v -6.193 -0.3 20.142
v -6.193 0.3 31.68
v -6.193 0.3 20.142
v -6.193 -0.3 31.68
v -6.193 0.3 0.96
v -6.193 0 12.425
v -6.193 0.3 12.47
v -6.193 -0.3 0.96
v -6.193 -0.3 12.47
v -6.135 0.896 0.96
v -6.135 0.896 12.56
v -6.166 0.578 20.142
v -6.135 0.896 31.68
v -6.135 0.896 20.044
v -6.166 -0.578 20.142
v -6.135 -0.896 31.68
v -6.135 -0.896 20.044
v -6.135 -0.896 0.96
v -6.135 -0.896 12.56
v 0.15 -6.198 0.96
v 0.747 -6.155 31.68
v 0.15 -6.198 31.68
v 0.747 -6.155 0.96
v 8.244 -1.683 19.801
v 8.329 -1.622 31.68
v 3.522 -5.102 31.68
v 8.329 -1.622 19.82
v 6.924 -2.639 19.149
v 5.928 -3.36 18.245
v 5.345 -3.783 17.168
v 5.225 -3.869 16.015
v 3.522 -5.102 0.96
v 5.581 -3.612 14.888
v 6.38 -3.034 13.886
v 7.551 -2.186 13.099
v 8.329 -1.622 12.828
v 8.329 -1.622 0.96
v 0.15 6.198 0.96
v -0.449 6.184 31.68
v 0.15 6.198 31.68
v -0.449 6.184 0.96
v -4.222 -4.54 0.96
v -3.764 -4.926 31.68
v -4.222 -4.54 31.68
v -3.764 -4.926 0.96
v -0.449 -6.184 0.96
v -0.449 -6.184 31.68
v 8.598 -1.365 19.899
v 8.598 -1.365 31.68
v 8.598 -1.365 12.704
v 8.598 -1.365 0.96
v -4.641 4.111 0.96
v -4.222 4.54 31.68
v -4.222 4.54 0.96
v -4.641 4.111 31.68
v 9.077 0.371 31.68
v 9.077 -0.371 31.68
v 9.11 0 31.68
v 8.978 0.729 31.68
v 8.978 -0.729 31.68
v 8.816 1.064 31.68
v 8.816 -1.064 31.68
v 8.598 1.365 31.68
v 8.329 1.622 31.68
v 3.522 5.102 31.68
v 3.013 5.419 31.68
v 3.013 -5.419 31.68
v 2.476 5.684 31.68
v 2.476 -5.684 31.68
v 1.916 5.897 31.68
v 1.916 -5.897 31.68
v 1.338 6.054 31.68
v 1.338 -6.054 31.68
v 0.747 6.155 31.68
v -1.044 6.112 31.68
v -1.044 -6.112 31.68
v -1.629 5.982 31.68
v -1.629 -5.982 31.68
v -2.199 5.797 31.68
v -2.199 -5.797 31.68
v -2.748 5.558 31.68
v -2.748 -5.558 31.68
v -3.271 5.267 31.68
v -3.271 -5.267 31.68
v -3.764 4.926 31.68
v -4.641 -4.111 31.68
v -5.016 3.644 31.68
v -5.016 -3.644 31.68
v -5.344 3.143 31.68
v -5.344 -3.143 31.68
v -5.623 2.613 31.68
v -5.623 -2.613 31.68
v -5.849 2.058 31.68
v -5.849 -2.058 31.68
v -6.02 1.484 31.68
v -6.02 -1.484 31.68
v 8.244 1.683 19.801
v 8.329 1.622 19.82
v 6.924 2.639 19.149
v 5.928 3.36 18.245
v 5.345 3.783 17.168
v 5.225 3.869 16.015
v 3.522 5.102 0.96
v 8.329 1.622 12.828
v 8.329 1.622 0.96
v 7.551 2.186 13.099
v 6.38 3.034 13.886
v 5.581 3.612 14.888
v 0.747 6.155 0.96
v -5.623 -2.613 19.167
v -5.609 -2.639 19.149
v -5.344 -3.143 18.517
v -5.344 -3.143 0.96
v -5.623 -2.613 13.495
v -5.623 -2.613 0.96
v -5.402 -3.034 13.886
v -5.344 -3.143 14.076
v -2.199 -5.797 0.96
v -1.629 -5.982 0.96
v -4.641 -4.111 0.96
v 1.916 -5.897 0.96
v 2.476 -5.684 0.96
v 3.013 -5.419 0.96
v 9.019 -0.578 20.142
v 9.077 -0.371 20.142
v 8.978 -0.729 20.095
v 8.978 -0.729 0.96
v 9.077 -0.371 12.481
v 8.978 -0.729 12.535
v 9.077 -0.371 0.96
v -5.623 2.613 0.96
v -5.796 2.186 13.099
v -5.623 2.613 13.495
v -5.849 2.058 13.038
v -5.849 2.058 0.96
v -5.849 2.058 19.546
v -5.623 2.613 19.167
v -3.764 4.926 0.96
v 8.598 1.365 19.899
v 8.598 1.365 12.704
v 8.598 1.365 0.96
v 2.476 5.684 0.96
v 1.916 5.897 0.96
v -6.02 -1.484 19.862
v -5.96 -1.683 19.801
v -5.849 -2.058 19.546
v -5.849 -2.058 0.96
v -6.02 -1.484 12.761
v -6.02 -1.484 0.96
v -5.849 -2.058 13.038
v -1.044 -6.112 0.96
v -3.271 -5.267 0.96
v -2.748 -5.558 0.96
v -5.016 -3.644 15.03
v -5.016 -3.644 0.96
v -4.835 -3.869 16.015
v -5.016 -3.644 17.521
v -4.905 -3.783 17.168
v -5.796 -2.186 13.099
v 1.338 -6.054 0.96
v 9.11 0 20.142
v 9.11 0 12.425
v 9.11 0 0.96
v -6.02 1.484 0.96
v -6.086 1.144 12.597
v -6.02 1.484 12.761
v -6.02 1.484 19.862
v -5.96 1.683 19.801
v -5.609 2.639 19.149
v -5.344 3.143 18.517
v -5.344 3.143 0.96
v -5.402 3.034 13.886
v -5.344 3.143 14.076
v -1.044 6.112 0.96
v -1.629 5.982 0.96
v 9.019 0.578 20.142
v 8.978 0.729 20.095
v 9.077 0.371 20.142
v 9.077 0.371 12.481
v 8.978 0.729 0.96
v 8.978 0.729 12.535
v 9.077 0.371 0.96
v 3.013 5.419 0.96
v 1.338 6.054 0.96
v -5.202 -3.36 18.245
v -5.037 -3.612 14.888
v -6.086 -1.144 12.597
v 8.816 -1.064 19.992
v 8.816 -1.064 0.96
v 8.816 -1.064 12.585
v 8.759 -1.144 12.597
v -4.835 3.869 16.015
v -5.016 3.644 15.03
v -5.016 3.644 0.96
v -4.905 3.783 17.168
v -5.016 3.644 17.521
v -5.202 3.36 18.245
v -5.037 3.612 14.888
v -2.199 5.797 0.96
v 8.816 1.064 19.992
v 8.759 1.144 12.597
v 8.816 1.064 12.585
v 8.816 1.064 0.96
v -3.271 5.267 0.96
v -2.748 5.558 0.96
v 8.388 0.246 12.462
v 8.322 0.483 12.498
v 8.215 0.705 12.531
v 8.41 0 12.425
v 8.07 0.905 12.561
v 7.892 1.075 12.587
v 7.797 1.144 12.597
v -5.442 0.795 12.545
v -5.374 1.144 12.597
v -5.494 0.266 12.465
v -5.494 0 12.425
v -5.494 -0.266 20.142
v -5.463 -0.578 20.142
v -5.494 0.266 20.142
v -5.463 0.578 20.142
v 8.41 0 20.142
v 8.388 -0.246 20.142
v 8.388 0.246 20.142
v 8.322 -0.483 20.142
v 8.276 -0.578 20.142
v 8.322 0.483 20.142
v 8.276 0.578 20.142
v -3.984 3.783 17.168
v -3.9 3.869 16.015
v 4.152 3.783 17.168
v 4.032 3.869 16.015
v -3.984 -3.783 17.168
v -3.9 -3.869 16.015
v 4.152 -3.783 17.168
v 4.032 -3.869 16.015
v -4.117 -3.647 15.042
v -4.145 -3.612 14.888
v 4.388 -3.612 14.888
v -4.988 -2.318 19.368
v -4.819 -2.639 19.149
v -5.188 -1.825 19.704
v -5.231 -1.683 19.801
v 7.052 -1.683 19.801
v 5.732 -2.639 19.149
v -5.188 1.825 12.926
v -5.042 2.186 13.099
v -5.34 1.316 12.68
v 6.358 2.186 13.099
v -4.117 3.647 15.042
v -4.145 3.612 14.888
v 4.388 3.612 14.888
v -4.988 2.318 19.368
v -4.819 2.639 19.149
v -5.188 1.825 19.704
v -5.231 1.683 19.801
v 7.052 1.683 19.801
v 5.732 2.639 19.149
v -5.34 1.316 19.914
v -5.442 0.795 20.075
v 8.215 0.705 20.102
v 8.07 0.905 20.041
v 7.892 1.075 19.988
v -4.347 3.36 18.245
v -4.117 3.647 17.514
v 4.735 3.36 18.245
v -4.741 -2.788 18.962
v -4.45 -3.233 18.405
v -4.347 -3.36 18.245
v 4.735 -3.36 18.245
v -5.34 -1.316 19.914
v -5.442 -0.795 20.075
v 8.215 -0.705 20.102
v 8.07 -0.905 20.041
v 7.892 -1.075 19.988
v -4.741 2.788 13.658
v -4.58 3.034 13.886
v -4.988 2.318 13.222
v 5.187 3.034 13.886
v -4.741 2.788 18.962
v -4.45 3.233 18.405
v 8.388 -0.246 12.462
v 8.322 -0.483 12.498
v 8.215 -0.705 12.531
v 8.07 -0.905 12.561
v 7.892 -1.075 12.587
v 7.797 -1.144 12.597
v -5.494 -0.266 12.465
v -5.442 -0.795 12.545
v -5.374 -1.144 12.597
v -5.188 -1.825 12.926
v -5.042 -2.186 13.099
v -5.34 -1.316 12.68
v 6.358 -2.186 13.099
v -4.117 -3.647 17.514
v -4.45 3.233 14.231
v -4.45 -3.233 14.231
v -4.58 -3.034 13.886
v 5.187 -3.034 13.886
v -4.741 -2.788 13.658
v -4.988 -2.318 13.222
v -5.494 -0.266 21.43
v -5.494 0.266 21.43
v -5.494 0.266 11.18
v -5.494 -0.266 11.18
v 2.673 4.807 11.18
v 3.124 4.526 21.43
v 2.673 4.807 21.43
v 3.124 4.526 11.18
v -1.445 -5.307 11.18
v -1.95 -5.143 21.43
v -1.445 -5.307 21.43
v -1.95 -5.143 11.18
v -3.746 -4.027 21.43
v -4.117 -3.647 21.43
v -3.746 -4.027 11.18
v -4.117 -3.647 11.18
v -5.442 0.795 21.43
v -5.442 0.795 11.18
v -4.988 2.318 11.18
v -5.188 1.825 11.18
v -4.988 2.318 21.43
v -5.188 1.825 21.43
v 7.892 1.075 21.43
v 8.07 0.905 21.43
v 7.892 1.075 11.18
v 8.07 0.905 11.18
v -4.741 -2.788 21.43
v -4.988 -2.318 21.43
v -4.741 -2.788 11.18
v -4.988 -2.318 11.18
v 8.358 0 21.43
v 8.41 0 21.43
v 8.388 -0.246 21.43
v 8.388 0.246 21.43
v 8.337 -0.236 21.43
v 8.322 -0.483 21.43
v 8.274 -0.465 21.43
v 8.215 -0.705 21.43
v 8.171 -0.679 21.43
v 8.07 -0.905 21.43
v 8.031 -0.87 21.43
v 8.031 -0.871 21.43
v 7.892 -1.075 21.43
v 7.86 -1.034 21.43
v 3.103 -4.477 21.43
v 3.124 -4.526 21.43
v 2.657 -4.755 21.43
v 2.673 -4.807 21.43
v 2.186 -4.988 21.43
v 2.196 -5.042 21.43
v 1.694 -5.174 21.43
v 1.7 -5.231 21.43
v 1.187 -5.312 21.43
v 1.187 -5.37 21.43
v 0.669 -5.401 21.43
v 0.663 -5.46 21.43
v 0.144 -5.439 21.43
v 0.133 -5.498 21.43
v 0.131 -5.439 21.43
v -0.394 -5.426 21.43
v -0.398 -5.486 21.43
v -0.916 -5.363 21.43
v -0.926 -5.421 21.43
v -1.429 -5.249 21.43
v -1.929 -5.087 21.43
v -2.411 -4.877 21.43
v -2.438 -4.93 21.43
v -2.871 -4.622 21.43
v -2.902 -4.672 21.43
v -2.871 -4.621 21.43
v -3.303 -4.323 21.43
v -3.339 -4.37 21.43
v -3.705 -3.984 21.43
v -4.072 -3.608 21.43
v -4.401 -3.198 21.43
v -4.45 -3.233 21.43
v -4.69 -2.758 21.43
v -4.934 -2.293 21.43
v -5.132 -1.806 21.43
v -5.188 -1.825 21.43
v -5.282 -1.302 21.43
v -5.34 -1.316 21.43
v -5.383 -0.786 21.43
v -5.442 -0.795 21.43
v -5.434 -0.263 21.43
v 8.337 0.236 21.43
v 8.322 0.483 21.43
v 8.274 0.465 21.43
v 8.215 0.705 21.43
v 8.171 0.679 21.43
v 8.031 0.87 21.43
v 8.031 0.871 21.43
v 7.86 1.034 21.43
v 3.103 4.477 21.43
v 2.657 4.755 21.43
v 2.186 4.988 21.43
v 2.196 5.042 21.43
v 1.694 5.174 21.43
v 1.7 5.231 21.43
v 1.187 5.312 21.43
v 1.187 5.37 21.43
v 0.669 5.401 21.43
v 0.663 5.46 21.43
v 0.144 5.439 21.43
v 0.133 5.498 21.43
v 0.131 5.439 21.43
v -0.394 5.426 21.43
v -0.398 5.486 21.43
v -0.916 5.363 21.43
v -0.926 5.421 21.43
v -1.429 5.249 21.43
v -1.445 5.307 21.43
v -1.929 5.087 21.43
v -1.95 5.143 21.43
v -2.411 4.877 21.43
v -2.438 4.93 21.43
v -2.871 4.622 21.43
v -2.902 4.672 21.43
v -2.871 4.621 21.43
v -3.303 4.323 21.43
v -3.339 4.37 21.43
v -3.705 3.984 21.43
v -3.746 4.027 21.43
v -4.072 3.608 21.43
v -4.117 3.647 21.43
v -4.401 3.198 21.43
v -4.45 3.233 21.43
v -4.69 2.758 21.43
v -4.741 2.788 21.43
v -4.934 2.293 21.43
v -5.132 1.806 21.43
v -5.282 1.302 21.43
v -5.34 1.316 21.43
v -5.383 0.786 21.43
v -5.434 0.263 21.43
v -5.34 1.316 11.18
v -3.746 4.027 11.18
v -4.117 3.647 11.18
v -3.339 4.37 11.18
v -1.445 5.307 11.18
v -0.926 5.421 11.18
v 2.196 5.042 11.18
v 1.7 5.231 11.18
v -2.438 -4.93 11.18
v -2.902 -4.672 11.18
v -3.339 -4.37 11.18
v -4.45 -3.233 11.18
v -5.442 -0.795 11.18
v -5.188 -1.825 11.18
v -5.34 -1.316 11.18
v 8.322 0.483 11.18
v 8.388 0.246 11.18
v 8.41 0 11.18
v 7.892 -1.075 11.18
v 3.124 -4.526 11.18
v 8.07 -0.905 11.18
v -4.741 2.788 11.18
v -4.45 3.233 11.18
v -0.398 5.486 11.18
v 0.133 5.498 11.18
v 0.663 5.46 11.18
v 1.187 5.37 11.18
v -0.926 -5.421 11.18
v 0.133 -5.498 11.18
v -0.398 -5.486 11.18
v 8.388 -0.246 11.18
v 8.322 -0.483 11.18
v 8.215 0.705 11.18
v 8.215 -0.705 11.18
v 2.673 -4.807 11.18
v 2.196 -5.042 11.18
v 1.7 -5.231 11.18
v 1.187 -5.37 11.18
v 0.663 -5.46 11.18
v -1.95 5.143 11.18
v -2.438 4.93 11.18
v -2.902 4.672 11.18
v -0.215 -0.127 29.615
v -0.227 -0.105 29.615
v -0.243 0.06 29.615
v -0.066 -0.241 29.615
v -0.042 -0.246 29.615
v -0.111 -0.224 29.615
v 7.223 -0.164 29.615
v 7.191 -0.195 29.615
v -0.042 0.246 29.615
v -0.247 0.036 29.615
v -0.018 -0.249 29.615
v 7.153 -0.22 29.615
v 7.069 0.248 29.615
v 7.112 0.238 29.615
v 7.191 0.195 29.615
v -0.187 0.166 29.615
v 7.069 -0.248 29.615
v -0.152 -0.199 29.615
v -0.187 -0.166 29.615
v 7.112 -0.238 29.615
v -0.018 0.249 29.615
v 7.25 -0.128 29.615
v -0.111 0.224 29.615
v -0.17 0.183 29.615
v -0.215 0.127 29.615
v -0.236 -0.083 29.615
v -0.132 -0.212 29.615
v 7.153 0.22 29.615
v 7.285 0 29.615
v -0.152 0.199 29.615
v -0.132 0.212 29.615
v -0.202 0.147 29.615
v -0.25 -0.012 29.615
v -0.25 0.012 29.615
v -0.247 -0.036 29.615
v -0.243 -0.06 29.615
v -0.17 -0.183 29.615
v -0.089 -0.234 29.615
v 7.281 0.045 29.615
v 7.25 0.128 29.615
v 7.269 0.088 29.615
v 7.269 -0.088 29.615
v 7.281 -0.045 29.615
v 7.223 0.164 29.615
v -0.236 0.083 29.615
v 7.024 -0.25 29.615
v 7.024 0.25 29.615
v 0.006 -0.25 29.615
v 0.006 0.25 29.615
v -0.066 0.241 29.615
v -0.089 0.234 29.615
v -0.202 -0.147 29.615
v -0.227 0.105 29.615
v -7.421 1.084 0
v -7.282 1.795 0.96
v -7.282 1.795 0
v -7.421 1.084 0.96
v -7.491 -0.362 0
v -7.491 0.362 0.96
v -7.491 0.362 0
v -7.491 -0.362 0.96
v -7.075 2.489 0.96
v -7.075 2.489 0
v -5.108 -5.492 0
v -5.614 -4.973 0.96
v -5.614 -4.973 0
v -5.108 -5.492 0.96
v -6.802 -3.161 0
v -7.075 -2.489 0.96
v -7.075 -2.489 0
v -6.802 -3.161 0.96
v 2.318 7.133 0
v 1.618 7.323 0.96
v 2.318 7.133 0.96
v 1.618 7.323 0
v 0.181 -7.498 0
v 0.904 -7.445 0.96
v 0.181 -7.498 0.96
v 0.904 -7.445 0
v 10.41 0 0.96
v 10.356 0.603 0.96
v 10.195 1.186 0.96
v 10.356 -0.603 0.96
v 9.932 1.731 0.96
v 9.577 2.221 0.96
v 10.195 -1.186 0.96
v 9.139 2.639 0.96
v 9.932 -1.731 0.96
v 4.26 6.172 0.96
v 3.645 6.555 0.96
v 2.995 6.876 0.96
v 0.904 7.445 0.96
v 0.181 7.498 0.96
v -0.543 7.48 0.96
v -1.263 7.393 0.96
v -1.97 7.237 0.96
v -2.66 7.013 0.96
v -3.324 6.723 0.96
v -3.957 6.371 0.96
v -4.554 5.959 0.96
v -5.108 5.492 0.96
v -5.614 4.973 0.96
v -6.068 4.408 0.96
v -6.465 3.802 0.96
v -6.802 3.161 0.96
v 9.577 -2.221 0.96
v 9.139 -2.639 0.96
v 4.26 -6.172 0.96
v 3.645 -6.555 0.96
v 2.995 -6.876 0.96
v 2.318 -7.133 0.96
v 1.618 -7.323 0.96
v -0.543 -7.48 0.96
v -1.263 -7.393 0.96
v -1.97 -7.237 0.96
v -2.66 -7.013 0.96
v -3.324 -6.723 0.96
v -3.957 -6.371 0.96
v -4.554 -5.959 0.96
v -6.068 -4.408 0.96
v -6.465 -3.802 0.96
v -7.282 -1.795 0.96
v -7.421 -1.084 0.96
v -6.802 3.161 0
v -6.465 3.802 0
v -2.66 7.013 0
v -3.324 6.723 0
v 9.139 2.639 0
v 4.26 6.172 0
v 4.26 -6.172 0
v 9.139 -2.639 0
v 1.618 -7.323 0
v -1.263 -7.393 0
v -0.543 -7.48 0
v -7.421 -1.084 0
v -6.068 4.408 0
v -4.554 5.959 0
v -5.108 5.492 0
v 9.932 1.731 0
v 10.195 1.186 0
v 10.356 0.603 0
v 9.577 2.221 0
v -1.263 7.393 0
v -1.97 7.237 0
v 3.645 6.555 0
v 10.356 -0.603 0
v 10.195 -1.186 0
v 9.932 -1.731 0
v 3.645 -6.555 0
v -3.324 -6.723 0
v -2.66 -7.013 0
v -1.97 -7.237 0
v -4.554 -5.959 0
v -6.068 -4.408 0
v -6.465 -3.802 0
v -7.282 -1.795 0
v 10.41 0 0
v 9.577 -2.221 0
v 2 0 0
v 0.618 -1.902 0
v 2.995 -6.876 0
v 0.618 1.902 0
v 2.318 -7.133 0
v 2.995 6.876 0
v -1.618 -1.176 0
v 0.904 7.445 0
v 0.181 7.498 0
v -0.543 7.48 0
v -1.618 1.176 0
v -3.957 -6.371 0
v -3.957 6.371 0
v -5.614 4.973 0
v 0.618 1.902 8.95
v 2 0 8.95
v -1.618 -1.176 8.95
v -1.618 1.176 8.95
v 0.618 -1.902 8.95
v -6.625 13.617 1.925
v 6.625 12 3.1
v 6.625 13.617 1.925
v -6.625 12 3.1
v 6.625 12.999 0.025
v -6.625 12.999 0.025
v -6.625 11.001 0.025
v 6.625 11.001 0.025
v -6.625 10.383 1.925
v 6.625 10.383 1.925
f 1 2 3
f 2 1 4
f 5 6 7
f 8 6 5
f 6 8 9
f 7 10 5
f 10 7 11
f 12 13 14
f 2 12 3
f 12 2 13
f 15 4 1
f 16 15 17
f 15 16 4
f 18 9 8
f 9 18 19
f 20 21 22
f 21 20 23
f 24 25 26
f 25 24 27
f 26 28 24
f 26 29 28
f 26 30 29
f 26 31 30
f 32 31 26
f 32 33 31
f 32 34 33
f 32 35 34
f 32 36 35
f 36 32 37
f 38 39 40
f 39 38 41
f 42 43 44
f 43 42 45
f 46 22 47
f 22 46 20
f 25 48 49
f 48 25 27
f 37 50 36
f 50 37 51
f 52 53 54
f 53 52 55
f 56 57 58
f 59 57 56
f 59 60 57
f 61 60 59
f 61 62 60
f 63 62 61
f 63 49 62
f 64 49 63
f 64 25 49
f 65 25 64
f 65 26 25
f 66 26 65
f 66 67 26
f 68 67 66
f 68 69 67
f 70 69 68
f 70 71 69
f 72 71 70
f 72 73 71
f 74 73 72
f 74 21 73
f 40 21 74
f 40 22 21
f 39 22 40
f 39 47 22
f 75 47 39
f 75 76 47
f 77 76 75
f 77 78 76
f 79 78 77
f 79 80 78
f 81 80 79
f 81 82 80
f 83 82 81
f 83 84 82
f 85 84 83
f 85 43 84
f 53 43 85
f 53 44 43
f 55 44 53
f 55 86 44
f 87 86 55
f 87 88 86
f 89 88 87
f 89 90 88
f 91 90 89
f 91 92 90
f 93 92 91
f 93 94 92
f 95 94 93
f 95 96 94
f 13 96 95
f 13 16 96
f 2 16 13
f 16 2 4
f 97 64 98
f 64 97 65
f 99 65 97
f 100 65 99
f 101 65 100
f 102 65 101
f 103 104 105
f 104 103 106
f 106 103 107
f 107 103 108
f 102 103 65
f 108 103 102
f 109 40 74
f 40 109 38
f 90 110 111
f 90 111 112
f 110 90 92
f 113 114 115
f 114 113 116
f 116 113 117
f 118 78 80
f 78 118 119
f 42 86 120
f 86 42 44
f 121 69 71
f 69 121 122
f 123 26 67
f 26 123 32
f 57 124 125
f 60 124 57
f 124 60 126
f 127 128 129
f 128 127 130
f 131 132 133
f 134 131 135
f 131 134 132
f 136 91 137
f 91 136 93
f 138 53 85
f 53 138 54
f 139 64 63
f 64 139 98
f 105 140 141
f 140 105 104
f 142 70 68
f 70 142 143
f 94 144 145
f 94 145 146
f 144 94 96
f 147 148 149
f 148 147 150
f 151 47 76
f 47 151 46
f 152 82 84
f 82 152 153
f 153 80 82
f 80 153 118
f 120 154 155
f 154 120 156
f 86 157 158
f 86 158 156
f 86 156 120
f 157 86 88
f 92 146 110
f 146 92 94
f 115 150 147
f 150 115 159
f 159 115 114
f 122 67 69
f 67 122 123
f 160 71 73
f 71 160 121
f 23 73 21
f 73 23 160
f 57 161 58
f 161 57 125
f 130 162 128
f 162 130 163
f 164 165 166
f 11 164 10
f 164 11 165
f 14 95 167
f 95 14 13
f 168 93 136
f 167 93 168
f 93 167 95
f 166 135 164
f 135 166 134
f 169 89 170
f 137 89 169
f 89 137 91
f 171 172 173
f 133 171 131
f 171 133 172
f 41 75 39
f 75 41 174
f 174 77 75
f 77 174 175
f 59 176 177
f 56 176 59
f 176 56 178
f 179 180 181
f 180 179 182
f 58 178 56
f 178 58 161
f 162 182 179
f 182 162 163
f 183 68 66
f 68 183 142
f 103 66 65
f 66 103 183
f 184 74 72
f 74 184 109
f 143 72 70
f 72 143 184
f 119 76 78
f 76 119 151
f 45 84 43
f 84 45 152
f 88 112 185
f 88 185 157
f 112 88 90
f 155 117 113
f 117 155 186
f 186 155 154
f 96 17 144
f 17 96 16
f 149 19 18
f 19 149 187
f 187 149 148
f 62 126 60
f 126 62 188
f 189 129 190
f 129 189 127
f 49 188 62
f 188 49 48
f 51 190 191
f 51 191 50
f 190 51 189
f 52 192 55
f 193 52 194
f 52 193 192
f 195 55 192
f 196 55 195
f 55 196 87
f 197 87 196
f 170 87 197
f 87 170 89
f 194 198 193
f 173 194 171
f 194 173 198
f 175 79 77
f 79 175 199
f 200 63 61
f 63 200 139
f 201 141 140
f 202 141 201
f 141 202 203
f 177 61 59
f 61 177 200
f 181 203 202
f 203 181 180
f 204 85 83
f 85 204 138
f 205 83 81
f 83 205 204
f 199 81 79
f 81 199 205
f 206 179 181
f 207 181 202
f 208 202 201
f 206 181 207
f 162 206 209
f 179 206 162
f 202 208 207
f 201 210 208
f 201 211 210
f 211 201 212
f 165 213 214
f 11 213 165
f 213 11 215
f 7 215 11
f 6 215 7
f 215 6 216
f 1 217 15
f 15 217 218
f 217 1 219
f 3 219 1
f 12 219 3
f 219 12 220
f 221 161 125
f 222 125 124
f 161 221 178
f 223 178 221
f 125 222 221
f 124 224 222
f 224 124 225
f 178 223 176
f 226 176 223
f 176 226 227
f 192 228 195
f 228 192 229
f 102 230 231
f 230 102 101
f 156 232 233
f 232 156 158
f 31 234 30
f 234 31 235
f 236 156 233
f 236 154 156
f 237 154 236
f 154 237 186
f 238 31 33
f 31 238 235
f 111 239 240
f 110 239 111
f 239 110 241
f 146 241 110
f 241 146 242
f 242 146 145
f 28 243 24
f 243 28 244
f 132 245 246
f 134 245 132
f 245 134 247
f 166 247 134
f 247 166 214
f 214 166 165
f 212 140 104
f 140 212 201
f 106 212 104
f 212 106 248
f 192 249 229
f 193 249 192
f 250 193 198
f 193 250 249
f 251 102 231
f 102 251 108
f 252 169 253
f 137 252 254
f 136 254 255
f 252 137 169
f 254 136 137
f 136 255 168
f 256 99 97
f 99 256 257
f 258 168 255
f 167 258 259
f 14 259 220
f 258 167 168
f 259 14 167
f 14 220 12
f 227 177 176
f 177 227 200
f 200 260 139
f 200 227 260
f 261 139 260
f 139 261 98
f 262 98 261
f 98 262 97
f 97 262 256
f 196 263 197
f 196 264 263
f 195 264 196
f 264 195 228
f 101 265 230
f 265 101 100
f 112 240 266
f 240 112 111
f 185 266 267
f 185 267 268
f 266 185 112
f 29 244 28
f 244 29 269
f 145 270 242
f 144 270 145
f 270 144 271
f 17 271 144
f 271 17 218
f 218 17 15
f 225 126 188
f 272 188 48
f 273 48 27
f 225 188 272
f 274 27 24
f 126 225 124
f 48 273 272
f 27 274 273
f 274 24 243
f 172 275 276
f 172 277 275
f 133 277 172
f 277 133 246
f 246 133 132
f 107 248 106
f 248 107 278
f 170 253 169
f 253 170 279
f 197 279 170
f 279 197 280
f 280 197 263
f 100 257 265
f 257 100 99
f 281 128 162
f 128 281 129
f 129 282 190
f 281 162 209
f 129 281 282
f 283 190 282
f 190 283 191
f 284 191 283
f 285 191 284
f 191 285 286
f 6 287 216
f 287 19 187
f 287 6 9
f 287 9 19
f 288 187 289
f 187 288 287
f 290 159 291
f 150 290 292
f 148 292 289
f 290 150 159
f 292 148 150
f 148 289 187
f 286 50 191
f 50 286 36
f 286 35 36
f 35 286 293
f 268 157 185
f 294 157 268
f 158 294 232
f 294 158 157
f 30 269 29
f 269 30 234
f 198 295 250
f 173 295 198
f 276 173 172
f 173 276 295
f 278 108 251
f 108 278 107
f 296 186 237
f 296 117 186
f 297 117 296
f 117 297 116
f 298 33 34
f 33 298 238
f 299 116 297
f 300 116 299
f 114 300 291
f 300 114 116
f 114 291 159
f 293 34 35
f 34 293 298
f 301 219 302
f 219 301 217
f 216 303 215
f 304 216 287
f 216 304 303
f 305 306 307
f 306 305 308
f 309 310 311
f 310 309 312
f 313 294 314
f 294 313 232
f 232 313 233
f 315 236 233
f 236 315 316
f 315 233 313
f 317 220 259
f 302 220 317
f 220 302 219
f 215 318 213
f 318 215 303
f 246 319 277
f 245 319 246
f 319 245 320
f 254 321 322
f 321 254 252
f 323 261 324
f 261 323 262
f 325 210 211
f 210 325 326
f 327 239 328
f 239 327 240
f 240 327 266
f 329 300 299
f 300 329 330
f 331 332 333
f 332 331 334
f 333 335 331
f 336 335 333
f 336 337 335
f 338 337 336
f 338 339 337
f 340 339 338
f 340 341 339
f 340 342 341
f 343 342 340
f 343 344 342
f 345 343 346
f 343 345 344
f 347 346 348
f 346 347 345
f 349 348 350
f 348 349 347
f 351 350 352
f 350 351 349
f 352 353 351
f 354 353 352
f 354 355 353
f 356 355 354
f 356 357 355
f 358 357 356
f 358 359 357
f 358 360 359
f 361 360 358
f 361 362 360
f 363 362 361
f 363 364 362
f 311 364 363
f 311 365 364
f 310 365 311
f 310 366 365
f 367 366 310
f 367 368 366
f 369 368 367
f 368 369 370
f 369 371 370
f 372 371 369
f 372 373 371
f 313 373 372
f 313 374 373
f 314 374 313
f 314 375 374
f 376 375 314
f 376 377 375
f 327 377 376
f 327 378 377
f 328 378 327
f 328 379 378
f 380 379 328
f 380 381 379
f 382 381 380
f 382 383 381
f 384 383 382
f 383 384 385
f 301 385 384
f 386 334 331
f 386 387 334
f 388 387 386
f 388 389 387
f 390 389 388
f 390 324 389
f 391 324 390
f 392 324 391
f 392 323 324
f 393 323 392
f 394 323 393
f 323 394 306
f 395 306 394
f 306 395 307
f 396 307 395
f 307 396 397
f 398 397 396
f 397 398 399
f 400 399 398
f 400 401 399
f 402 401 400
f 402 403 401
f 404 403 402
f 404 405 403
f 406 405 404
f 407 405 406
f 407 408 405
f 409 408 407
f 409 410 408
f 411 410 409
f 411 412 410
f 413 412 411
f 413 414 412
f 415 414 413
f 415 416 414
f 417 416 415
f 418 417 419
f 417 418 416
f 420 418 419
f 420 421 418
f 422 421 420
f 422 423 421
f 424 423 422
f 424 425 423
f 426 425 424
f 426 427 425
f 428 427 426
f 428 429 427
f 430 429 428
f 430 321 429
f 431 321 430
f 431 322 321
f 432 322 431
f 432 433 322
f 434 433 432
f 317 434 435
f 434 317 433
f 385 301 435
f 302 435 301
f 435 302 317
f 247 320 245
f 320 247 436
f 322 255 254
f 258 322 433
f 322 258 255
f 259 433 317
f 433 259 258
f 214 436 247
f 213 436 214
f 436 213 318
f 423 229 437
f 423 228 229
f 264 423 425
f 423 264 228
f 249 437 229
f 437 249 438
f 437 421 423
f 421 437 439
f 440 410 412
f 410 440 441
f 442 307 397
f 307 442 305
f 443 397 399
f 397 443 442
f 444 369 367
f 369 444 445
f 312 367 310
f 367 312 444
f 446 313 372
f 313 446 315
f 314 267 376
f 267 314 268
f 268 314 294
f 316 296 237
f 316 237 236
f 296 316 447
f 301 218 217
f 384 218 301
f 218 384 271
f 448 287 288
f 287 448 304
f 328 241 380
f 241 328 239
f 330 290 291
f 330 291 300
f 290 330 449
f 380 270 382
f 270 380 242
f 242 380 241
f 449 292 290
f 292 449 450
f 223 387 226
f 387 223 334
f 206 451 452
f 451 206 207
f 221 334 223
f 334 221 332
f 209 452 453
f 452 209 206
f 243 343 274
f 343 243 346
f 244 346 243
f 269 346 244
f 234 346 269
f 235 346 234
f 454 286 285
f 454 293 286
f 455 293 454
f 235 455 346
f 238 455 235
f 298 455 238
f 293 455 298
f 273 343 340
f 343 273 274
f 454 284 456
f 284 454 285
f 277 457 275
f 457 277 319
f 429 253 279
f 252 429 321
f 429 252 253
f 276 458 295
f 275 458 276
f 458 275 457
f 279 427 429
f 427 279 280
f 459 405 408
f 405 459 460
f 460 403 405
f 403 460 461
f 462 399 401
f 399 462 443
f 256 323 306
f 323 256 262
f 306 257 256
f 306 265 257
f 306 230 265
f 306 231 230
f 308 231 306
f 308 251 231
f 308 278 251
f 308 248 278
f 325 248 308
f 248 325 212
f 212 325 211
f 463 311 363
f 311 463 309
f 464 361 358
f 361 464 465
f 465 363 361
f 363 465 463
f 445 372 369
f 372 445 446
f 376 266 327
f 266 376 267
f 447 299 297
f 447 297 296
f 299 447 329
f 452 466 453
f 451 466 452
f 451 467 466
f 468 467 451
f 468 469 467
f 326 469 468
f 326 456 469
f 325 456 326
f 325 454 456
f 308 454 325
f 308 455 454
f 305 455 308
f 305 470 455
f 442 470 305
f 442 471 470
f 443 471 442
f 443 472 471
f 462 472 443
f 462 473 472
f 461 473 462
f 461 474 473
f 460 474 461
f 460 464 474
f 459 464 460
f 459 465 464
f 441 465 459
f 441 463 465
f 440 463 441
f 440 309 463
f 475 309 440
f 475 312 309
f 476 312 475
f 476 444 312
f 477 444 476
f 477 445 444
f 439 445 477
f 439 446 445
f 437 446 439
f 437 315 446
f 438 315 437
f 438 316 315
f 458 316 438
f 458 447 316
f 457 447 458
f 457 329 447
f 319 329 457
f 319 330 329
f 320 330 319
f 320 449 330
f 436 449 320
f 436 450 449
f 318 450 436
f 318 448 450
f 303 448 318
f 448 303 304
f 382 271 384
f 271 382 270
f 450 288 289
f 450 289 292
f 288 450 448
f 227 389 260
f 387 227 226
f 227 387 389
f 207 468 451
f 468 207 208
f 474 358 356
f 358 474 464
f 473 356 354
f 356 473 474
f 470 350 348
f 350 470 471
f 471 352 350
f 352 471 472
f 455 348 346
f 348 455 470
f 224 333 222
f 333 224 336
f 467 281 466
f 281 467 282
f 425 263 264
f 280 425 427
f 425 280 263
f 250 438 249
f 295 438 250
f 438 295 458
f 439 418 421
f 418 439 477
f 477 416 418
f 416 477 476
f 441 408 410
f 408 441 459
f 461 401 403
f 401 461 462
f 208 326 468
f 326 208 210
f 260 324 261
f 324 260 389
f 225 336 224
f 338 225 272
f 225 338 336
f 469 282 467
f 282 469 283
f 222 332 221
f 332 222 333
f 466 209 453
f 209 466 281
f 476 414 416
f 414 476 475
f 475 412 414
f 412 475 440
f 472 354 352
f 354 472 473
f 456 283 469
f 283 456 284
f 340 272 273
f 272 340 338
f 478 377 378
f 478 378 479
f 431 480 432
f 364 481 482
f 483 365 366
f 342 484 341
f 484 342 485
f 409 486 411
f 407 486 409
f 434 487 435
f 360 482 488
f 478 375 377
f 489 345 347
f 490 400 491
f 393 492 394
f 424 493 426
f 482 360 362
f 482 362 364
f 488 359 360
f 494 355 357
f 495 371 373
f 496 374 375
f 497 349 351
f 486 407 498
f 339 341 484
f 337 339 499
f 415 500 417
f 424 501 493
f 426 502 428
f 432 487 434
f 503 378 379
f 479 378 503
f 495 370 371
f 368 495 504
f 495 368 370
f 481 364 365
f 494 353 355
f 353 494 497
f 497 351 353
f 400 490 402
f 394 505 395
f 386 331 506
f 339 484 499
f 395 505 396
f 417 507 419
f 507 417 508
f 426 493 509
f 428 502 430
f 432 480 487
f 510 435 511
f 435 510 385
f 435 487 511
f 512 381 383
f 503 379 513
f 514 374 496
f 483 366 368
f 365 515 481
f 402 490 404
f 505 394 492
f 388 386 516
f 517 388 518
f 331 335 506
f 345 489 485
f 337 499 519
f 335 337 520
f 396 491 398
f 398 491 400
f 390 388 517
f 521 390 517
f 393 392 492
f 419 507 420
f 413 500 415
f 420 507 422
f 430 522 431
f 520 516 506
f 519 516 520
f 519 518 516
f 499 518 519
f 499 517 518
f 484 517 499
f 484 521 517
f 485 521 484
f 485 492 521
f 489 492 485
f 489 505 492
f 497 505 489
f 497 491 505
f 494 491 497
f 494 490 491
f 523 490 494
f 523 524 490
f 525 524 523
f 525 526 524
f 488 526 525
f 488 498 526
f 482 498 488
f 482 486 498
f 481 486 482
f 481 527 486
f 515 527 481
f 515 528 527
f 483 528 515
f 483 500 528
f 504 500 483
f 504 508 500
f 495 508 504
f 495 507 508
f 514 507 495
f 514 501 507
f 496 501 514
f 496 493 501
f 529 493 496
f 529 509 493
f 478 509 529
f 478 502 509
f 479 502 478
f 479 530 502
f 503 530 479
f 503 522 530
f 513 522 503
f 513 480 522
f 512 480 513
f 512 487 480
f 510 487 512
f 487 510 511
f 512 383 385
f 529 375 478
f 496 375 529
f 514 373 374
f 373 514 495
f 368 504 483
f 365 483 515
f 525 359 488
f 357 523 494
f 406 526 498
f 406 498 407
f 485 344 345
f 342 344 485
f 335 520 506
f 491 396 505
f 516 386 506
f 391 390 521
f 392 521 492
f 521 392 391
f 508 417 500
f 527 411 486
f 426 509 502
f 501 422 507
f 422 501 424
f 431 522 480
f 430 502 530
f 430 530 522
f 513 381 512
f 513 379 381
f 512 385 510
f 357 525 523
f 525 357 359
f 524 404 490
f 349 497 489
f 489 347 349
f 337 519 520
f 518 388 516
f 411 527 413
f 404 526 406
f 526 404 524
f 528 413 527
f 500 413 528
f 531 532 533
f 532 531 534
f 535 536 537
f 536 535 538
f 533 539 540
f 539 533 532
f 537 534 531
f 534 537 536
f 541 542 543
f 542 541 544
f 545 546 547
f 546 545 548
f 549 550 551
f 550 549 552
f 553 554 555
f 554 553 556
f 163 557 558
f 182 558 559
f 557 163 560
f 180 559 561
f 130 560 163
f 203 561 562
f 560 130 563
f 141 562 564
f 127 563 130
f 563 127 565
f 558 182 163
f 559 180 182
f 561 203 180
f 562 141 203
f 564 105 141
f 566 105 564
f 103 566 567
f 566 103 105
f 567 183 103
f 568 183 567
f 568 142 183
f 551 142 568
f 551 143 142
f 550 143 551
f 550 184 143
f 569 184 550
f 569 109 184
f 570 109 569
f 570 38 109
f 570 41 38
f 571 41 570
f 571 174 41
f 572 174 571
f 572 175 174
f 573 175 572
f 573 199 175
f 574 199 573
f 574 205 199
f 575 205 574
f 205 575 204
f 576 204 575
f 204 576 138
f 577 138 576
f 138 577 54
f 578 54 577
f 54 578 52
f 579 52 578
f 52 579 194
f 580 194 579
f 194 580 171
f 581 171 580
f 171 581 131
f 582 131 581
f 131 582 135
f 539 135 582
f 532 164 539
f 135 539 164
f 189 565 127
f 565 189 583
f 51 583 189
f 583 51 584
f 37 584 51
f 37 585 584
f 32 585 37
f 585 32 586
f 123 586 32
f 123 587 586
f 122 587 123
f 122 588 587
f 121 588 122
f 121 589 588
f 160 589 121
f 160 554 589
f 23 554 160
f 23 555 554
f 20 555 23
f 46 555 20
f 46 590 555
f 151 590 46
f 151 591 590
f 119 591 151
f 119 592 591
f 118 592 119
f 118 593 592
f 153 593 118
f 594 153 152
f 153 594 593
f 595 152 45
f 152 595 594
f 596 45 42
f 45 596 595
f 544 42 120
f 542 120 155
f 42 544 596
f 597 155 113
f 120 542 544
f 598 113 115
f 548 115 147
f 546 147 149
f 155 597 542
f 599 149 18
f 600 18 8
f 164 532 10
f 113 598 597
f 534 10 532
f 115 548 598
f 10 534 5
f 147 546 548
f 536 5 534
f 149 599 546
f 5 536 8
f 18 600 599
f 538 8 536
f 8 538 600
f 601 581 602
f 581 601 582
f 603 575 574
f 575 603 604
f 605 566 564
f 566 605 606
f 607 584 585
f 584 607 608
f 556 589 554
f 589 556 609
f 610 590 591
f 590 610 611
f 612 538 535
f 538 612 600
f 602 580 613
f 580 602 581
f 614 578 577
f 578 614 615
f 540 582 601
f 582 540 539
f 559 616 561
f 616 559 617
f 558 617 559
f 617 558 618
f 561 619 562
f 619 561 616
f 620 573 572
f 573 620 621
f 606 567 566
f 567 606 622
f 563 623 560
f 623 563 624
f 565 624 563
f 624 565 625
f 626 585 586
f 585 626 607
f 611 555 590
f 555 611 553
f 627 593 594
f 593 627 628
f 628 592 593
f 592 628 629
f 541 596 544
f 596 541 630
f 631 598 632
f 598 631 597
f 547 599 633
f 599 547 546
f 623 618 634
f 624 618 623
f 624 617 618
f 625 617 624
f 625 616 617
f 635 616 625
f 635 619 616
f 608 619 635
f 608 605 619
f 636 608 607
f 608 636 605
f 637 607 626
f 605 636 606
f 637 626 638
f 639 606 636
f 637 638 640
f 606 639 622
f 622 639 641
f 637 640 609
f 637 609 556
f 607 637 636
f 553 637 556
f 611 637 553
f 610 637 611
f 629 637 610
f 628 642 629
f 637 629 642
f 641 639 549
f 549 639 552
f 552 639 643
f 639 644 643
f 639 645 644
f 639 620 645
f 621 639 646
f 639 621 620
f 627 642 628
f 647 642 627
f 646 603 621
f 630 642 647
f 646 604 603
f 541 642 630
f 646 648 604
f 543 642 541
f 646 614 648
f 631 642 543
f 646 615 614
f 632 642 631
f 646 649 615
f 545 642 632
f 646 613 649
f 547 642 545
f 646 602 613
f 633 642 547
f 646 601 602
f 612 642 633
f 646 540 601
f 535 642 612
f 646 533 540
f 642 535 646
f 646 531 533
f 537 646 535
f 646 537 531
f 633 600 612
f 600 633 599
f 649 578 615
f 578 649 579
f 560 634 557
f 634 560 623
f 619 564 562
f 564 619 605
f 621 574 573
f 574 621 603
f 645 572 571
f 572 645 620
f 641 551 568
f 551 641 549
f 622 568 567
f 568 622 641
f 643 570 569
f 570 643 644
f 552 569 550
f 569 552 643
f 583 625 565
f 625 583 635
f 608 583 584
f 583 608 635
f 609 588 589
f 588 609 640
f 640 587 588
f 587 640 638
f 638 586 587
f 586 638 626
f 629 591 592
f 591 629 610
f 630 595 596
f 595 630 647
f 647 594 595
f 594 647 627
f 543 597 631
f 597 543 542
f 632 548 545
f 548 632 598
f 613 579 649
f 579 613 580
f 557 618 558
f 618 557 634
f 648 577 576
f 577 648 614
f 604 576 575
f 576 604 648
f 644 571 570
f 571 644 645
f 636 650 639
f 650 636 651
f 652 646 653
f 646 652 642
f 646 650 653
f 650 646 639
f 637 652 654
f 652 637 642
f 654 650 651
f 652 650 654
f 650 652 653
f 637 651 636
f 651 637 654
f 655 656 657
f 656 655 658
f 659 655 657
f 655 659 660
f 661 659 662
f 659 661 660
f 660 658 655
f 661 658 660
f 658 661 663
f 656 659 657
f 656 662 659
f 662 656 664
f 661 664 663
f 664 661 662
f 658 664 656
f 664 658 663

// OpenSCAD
dia = 13;
length = 15.91;
dia2 = 4.75;
sensor_h = 30.75;

bolt_dia = 5.76;

clr = 0.3;

chipx = 2.47;
chipy = 3.07;
chipz = 0.96;

module main() {
    difference() {
        hull() {
            cylinder(d= dia-2*clr, h = sensor_h, $fn= 65, center=false);
            translate([length-dia/2-dia2/2,0,0])
                cylinder(d= dia2-2*clr, h = sensor_h, $fn= 35, center=false);
        }
        translate([0,0,sensor_h/2])
            rotate([0,90,0])
                cylinder(d = bolt_dia+2, h = length + 4, $fn = 21, center=true);
        translate([0,0,sensor_h*1/3]) hull() {
            cylinder(d= dia-2, h = sensor_h*1/3, $fn= 65, center=false);
            translate([length-dia/2-dia2/2,0,0])
                cylinder(d= dia2-2, h = sensor_h*1/3, $fn= 35, center=false);
        }
        translate([0,0,sensor_h*2/3-0.015]) hull() {
            cylinder(d1= dia-2.1, d2= 0.5,  h = sensor_h*0.8/3, $fn= 65, center=false);
            translate([length-dia/2-dia2/2,0,0])
                cylinder(d1= dia2-2.1, d2= 0.5, h = sensor_h*0.8/3, $fn= 35, center=false);
        }
    }
}

module cap() {
    
    hull() {
        cylinder(d= dia+2, h = chipz, $fn= 65, center=false);
        translate([length-dia/2-dia2/2,0,0])
            cylinder(d= dia2+2, h = chipz, $fn= 35, center=false);
    }
}

module chip_carrier() {
    cube([chipx, chipy, chipz]);
}

difference() {
    union() {
        translate([0,0,chipz-0.03]) main();
        cap();
    }
    translate([0,0, -0.3])
        cylinder(d = 4, h = sensor_h*1/3-1, $fn=5, center= false);
}

translate([(sensor_h*1/3-1+4)/2,12, (4-2*clr)/2-0.3]) rotate([0,-90,0])
        cylinder(d = 4-2*clr, h = sensor_h*1/3-1+4, $fn=5, center= false);
